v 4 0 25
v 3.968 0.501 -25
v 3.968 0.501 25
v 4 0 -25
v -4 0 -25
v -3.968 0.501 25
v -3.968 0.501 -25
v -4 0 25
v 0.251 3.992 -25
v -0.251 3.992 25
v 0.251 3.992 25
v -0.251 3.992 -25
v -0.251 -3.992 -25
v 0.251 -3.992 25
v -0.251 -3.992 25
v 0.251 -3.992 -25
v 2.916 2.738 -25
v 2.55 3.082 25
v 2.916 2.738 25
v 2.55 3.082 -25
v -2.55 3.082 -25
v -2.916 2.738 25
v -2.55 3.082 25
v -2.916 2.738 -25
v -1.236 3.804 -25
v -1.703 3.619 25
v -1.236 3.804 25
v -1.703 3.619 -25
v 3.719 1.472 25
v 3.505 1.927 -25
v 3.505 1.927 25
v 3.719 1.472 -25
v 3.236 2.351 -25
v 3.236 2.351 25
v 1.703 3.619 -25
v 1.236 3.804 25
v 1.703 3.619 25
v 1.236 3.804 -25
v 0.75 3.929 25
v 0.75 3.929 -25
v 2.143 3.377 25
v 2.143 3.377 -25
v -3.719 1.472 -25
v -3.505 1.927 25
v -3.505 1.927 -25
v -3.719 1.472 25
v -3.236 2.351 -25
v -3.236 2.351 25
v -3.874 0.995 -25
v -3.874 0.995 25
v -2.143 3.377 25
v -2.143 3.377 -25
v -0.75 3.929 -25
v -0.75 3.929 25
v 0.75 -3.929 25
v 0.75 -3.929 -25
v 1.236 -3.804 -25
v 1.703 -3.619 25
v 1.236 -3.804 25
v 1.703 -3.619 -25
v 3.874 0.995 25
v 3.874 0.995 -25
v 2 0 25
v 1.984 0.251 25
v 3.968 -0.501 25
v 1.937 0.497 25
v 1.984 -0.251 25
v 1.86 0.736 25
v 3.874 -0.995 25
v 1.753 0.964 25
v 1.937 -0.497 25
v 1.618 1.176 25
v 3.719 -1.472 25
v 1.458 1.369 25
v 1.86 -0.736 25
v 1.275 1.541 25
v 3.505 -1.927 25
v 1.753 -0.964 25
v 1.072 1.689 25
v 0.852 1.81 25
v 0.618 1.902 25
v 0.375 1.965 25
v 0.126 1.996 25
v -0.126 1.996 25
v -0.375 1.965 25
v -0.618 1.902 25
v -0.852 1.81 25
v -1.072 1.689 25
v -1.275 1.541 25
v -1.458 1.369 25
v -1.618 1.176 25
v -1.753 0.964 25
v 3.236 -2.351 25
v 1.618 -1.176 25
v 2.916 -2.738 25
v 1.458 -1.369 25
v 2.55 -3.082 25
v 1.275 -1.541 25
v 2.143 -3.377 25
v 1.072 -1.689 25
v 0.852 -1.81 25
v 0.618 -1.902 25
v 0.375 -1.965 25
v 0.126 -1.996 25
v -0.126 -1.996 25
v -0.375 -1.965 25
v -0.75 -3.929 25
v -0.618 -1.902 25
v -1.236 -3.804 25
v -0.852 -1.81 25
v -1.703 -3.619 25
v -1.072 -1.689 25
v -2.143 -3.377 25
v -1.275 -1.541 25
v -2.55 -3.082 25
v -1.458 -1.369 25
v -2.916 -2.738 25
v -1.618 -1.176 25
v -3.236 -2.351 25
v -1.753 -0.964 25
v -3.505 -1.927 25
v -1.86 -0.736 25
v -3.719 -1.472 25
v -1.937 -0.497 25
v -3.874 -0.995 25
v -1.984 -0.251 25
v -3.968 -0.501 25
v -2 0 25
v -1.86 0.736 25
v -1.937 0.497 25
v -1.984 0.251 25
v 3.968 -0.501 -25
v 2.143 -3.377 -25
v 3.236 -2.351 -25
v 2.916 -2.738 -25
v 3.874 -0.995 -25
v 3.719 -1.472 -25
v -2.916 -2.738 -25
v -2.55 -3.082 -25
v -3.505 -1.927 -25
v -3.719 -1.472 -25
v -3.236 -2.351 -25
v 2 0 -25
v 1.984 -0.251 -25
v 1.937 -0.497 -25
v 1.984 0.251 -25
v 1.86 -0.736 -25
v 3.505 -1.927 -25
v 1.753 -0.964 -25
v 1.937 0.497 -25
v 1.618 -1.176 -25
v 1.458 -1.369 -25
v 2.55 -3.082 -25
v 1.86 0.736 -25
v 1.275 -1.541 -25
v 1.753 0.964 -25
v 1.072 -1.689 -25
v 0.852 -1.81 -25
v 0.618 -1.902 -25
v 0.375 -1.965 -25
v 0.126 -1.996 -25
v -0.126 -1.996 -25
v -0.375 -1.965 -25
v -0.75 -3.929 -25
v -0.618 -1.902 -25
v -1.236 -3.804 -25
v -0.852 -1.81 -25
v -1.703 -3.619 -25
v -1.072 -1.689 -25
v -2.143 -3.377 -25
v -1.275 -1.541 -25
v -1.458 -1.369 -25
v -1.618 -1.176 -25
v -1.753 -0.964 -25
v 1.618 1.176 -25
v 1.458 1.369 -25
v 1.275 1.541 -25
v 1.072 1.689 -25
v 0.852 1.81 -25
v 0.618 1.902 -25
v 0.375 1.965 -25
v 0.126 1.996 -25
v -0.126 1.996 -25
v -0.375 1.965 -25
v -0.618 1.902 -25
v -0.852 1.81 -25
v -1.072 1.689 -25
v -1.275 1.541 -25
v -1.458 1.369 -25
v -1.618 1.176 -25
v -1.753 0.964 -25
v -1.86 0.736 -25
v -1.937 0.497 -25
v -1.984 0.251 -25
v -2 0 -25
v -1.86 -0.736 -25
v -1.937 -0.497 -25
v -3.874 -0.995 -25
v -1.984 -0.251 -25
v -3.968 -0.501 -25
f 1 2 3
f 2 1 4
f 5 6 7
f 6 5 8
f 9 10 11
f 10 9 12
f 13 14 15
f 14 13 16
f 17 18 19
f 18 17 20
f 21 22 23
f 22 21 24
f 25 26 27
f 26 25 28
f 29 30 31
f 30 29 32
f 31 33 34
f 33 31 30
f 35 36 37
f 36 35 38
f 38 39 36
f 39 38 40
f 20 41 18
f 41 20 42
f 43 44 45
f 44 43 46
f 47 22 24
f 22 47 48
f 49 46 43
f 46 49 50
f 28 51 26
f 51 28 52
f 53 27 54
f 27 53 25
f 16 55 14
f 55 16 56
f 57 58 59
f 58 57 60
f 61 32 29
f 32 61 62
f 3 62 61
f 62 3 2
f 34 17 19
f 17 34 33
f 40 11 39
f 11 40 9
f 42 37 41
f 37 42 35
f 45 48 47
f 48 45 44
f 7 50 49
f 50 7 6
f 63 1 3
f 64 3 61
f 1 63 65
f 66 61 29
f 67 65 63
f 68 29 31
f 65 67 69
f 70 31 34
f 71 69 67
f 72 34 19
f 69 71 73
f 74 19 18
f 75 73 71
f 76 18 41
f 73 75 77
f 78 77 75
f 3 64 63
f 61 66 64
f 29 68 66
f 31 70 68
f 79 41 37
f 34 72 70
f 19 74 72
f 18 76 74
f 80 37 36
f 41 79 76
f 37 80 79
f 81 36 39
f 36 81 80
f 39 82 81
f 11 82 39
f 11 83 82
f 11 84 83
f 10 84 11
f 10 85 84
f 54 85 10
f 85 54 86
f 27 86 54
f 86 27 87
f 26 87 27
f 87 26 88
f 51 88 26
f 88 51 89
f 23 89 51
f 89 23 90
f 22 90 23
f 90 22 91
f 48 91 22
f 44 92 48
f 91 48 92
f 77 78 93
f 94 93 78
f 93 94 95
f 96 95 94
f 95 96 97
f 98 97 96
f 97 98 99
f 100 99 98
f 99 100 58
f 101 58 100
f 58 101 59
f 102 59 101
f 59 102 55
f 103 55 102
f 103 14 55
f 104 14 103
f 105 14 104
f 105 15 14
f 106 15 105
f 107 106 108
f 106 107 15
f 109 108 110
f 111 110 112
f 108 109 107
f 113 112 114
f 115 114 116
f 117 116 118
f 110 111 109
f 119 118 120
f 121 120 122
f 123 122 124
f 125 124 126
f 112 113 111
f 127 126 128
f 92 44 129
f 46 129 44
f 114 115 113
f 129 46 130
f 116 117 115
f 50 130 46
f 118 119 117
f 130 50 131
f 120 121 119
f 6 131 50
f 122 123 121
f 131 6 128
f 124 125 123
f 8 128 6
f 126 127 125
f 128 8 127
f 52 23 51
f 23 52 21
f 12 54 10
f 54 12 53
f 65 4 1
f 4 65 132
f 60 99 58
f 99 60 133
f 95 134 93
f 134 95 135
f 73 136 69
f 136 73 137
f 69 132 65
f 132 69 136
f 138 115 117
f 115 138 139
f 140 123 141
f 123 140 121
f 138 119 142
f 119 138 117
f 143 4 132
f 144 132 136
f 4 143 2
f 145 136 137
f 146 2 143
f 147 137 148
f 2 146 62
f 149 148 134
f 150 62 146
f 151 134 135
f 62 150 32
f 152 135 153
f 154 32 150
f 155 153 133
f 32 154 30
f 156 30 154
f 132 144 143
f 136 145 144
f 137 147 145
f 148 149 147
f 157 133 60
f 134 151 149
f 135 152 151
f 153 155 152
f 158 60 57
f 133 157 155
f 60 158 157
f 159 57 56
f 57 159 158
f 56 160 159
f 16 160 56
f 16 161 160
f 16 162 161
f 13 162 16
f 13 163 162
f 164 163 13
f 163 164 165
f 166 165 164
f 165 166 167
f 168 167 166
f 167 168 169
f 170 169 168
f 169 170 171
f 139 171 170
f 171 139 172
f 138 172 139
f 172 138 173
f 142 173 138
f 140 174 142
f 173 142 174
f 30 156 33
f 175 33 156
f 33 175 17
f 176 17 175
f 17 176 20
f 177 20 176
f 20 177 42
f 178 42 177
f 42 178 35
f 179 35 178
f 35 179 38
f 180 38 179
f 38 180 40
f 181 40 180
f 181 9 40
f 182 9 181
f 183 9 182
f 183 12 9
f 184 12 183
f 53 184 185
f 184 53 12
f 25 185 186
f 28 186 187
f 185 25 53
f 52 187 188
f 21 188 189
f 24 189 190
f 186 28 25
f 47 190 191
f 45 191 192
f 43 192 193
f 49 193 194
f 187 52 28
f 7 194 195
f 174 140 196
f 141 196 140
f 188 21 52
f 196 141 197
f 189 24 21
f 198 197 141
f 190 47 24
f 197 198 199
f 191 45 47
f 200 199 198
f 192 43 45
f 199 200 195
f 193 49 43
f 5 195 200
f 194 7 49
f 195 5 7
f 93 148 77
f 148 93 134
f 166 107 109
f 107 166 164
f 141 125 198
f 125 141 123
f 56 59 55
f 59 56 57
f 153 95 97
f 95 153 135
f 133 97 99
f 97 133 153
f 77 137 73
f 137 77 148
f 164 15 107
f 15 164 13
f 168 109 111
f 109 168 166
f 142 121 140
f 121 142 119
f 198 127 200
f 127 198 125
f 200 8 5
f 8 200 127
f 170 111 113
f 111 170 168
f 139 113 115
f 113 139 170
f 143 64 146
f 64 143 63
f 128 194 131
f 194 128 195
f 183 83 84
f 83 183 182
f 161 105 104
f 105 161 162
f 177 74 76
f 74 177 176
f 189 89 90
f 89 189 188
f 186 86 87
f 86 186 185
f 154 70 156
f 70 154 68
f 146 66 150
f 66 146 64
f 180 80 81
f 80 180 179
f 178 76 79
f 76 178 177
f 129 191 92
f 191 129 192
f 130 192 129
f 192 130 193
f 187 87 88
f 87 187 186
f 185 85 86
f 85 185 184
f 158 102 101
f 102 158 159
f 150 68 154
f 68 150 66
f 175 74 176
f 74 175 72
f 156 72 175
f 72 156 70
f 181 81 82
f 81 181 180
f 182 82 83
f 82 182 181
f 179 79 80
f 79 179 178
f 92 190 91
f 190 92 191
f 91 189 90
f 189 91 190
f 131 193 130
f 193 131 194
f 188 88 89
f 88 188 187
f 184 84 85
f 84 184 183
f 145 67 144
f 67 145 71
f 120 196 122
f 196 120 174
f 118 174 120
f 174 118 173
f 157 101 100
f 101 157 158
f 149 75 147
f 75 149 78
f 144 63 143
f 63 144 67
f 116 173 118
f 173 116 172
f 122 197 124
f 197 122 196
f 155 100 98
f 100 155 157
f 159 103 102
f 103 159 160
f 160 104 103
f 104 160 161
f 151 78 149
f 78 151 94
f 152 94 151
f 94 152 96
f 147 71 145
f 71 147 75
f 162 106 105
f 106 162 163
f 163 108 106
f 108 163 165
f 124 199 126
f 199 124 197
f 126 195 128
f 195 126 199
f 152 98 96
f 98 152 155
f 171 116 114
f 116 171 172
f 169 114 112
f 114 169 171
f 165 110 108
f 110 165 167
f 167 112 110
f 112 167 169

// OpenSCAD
$fn = 50;


difference() {
	union() {
		translate(v = [0, 0, -25.0000000000]) {
			cylinder(h = 50, r = 4.0000000000);
		}
	}
	union() {
		translate(v = [0, 0, -100.0000000000]) {
			cylinder(h = 200, r = 2);
		}
	}
}
